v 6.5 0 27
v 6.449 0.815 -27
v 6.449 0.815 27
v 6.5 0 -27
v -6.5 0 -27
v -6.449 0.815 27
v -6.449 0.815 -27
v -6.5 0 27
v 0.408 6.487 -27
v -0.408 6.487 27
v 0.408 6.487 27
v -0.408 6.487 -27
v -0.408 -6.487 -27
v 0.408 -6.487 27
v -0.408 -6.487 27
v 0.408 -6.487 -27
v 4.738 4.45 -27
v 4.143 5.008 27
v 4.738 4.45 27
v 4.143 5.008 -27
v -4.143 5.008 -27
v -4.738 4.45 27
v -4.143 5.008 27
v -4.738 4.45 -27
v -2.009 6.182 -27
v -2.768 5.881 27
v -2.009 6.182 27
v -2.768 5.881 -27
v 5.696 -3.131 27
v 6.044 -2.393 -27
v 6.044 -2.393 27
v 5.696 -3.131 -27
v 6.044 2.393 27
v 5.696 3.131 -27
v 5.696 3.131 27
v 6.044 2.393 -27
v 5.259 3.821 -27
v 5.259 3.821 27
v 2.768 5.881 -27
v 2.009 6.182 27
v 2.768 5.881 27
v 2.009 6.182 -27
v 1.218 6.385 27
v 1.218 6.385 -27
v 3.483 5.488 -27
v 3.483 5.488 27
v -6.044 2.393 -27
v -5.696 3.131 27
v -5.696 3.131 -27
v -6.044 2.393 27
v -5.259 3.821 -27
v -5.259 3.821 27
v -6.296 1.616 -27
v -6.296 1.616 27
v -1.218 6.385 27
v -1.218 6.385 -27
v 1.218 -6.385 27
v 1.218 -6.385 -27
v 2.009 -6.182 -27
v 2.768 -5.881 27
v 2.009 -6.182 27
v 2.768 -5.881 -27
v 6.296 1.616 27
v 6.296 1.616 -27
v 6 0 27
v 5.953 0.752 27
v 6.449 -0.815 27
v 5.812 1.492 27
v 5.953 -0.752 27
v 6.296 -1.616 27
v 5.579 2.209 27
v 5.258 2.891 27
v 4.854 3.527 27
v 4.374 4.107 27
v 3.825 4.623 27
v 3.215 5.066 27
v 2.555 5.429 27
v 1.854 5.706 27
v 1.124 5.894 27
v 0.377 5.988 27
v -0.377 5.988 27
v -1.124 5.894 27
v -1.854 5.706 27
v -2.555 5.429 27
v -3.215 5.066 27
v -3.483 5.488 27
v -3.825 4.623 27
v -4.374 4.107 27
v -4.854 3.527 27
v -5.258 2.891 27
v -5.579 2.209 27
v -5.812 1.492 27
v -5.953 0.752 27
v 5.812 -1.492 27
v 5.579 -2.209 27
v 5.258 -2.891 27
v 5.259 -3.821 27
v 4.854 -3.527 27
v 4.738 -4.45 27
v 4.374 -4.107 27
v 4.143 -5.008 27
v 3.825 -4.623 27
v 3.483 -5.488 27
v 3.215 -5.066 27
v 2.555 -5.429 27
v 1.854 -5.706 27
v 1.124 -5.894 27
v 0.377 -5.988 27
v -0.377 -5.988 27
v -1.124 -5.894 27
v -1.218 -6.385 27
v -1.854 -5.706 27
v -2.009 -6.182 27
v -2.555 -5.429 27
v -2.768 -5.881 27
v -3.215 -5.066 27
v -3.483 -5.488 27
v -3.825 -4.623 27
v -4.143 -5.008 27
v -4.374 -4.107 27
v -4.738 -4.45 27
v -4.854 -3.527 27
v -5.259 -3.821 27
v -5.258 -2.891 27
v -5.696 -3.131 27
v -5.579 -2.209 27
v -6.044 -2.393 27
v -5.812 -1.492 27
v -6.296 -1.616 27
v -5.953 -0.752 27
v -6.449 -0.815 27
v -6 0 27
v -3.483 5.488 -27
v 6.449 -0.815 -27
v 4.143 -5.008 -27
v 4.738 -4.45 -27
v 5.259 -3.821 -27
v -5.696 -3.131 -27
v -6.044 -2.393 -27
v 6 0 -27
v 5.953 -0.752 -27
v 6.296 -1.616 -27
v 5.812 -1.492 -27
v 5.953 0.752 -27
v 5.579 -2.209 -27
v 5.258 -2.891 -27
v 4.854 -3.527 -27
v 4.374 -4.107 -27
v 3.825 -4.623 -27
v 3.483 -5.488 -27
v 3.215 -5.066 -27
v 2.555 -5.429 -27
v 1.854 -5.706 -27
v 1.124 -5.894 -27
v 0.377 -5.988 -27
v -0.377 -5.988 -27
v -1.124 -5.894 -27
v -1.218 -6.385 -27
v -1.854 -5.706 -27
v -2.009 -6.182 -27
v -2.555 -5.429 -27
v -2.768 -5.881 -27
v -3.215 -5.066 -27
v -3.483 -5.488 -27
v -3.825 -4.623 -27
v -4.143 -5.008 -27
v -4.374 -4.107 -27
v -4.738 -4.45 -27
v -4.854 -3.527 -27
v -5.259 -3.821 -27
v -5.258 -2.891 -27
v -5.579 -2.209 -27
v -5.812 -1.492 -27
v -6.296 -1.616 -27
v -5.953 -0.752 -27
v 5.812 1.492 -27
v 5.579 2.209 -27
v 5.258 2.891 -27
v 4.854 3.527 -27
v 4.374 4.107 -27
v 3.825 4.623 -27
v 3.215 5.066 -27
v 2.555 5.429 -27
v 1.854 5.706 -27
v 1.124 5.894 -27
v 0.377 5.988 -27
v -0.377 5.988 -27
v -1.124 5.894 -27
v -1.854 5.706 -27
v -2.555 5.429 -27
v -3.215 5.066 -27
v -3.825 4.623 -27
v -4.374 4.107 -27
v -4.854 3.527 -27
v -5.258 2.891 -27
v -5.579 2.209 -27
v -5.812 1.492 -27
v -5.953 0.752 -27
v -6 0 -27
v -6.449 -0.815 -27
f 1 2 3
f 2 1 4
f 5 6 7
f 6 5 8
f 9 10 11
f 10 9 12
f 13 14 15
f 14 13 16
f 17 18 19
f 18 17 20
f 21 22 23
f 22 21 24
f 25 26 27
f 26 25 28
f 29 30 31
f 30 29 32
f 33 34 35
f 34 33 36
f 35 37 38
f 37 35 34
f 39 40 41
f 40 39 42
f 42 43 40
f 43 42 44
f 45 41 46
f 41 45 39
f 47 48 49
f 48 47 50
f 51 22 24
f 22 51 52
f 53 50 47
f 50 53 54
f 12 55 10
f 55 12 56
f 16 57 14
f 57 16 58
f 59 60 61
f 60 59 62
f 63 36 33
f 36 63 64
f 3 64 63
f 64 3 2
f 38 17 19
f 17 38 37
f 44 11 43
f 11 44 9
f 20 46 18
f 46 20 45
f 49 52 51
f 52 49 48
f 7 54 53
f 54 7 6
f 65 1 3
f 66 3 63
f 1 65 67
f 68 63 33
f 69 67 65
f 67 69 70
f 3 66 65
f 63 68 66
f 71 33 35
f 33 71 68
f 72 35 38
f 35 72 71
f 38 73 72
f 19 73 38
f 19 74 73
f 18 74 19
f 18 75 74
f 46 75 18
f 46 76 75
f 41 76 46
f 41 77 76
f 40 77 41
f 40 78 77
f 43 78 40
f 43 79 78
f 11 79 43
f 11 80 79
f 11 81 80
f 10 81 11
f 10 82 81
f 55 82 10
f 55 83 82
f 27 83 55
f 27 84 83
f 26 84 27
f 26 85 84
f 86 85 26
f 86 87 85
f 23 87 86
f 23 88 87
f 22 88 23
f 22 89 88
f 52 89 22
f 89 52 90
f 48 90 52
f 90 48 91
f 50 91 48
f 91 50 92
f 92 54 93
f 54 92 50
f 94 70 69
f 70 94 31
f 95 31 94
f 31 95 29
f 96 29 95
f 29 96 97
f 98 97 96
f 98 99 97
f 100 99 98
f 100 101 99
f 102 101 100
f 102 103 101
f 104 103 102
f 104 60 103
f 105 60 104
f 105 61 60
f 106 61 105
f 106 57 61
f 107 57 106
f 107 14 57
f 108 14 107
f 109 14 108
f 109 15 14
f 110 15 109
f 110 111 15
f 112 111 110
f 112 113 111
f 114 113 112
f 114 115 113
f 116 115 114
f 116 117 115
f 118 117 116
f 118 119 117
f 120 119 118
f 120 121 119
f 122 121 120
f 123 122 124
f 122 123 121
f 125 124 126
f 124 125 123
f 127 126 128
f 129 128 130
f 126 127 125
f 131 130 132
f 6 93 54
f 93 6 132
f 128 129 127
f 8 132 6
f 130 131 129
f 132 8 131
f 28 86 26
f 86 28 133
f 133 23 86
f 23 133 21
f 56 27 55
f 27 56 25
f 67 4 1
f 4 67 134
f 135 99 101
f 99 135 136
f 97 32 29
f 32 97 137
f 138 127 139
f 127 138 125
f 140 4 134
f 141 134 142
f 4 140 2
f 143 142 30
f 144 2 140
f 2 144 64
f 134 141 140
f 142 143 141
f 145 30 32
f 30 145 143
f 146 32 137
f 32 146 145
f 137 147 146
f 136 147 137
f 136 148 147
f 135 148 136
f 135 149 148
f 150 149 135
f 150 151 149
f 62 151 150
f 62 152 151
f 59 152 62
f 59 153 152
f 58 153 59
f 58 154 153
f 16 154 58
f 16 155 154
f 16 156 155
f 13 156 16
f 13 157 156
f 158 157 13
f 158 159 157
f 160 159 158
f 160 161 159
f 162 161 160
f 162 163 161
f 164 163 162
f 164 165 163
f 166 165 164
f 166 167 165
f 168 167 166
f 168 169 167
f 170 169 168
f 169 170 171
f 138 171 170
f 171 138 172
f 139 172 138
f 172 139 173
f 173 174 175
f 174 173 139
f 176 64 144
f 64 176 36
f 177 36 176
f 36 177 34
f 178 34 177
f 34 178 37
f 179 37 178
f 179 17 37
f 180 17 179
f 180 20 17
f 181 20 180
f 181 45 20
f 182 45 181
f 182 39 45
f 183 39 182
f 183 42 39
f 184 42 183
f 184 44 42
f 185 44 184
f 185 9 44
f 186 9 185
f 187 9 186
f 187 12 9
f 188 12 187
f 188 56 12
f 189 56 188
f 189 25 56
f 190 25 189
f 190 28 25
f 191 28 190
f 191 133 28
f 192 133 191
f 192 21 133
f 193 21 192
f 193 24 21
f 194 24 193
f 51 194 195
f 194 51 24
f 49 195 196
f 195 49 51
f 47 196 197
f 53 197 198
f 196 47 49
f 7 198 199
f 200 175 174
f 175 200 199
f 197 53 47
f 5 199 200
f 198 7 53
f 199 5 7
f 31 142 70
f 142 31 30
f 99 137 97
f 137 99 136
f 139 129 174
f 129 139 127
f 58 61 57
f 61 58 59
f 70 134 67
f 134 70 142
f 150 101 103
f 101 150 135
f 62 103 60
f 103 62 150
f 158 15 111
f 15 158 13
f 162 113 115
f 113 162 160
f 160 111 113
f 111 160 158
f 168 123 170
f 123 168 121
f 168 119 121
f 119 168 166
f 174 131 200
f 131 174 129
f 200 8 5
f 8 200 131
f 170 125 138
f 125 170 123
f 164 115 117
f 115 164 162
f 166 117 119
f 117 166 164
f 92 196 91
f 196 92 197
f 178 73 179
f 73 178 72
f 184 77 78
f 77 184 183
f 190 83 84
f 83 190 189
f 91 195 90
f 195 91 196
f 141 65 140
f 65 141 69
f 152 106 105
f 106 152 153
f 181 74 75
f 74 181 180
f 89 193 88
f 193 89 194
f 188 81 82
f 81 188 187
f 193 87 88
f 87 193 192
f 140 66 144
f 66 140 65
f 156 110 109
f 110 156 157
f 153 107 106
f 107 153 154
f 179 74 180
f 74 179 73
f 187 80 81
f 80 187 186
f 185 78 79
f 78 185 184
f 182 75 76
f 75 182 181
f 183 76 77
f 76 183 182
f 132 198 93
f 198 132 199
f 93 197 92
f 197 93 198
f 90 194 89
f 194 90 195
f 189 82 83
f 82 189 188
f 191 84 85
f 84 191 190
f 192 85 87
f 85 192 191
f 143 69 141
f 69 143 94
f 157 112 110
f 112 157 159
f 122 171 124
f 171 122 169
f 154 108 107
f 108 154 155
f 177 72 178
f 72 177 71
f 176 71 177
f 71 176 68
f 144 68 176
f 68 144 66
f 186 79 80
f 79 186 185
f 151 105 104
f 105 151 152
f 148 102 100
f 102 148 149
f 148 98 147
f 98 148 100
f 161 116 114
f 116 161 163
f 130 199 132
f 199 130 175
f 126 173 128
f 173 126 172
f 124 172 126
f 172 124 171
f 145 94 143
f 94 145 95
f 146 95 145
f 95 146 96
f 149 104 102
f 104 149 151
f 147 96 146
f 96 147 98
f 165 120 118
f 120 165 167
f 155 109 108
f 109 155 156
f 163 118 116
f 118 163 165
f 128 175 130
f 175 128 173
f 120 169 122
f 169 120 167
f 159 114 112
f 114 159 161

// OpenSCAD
$fn = 50;


difference() {
	union() {
		translate(v = [0, 0, -27.0000000000]) {
			cylinder(h = 54, r = 6.5000000000);
		}
	}
	union() {
		translate(v = [0, 0, -100.0000000000]) {
			cylinder(h = 200, r = 6);
		}
	}
}
